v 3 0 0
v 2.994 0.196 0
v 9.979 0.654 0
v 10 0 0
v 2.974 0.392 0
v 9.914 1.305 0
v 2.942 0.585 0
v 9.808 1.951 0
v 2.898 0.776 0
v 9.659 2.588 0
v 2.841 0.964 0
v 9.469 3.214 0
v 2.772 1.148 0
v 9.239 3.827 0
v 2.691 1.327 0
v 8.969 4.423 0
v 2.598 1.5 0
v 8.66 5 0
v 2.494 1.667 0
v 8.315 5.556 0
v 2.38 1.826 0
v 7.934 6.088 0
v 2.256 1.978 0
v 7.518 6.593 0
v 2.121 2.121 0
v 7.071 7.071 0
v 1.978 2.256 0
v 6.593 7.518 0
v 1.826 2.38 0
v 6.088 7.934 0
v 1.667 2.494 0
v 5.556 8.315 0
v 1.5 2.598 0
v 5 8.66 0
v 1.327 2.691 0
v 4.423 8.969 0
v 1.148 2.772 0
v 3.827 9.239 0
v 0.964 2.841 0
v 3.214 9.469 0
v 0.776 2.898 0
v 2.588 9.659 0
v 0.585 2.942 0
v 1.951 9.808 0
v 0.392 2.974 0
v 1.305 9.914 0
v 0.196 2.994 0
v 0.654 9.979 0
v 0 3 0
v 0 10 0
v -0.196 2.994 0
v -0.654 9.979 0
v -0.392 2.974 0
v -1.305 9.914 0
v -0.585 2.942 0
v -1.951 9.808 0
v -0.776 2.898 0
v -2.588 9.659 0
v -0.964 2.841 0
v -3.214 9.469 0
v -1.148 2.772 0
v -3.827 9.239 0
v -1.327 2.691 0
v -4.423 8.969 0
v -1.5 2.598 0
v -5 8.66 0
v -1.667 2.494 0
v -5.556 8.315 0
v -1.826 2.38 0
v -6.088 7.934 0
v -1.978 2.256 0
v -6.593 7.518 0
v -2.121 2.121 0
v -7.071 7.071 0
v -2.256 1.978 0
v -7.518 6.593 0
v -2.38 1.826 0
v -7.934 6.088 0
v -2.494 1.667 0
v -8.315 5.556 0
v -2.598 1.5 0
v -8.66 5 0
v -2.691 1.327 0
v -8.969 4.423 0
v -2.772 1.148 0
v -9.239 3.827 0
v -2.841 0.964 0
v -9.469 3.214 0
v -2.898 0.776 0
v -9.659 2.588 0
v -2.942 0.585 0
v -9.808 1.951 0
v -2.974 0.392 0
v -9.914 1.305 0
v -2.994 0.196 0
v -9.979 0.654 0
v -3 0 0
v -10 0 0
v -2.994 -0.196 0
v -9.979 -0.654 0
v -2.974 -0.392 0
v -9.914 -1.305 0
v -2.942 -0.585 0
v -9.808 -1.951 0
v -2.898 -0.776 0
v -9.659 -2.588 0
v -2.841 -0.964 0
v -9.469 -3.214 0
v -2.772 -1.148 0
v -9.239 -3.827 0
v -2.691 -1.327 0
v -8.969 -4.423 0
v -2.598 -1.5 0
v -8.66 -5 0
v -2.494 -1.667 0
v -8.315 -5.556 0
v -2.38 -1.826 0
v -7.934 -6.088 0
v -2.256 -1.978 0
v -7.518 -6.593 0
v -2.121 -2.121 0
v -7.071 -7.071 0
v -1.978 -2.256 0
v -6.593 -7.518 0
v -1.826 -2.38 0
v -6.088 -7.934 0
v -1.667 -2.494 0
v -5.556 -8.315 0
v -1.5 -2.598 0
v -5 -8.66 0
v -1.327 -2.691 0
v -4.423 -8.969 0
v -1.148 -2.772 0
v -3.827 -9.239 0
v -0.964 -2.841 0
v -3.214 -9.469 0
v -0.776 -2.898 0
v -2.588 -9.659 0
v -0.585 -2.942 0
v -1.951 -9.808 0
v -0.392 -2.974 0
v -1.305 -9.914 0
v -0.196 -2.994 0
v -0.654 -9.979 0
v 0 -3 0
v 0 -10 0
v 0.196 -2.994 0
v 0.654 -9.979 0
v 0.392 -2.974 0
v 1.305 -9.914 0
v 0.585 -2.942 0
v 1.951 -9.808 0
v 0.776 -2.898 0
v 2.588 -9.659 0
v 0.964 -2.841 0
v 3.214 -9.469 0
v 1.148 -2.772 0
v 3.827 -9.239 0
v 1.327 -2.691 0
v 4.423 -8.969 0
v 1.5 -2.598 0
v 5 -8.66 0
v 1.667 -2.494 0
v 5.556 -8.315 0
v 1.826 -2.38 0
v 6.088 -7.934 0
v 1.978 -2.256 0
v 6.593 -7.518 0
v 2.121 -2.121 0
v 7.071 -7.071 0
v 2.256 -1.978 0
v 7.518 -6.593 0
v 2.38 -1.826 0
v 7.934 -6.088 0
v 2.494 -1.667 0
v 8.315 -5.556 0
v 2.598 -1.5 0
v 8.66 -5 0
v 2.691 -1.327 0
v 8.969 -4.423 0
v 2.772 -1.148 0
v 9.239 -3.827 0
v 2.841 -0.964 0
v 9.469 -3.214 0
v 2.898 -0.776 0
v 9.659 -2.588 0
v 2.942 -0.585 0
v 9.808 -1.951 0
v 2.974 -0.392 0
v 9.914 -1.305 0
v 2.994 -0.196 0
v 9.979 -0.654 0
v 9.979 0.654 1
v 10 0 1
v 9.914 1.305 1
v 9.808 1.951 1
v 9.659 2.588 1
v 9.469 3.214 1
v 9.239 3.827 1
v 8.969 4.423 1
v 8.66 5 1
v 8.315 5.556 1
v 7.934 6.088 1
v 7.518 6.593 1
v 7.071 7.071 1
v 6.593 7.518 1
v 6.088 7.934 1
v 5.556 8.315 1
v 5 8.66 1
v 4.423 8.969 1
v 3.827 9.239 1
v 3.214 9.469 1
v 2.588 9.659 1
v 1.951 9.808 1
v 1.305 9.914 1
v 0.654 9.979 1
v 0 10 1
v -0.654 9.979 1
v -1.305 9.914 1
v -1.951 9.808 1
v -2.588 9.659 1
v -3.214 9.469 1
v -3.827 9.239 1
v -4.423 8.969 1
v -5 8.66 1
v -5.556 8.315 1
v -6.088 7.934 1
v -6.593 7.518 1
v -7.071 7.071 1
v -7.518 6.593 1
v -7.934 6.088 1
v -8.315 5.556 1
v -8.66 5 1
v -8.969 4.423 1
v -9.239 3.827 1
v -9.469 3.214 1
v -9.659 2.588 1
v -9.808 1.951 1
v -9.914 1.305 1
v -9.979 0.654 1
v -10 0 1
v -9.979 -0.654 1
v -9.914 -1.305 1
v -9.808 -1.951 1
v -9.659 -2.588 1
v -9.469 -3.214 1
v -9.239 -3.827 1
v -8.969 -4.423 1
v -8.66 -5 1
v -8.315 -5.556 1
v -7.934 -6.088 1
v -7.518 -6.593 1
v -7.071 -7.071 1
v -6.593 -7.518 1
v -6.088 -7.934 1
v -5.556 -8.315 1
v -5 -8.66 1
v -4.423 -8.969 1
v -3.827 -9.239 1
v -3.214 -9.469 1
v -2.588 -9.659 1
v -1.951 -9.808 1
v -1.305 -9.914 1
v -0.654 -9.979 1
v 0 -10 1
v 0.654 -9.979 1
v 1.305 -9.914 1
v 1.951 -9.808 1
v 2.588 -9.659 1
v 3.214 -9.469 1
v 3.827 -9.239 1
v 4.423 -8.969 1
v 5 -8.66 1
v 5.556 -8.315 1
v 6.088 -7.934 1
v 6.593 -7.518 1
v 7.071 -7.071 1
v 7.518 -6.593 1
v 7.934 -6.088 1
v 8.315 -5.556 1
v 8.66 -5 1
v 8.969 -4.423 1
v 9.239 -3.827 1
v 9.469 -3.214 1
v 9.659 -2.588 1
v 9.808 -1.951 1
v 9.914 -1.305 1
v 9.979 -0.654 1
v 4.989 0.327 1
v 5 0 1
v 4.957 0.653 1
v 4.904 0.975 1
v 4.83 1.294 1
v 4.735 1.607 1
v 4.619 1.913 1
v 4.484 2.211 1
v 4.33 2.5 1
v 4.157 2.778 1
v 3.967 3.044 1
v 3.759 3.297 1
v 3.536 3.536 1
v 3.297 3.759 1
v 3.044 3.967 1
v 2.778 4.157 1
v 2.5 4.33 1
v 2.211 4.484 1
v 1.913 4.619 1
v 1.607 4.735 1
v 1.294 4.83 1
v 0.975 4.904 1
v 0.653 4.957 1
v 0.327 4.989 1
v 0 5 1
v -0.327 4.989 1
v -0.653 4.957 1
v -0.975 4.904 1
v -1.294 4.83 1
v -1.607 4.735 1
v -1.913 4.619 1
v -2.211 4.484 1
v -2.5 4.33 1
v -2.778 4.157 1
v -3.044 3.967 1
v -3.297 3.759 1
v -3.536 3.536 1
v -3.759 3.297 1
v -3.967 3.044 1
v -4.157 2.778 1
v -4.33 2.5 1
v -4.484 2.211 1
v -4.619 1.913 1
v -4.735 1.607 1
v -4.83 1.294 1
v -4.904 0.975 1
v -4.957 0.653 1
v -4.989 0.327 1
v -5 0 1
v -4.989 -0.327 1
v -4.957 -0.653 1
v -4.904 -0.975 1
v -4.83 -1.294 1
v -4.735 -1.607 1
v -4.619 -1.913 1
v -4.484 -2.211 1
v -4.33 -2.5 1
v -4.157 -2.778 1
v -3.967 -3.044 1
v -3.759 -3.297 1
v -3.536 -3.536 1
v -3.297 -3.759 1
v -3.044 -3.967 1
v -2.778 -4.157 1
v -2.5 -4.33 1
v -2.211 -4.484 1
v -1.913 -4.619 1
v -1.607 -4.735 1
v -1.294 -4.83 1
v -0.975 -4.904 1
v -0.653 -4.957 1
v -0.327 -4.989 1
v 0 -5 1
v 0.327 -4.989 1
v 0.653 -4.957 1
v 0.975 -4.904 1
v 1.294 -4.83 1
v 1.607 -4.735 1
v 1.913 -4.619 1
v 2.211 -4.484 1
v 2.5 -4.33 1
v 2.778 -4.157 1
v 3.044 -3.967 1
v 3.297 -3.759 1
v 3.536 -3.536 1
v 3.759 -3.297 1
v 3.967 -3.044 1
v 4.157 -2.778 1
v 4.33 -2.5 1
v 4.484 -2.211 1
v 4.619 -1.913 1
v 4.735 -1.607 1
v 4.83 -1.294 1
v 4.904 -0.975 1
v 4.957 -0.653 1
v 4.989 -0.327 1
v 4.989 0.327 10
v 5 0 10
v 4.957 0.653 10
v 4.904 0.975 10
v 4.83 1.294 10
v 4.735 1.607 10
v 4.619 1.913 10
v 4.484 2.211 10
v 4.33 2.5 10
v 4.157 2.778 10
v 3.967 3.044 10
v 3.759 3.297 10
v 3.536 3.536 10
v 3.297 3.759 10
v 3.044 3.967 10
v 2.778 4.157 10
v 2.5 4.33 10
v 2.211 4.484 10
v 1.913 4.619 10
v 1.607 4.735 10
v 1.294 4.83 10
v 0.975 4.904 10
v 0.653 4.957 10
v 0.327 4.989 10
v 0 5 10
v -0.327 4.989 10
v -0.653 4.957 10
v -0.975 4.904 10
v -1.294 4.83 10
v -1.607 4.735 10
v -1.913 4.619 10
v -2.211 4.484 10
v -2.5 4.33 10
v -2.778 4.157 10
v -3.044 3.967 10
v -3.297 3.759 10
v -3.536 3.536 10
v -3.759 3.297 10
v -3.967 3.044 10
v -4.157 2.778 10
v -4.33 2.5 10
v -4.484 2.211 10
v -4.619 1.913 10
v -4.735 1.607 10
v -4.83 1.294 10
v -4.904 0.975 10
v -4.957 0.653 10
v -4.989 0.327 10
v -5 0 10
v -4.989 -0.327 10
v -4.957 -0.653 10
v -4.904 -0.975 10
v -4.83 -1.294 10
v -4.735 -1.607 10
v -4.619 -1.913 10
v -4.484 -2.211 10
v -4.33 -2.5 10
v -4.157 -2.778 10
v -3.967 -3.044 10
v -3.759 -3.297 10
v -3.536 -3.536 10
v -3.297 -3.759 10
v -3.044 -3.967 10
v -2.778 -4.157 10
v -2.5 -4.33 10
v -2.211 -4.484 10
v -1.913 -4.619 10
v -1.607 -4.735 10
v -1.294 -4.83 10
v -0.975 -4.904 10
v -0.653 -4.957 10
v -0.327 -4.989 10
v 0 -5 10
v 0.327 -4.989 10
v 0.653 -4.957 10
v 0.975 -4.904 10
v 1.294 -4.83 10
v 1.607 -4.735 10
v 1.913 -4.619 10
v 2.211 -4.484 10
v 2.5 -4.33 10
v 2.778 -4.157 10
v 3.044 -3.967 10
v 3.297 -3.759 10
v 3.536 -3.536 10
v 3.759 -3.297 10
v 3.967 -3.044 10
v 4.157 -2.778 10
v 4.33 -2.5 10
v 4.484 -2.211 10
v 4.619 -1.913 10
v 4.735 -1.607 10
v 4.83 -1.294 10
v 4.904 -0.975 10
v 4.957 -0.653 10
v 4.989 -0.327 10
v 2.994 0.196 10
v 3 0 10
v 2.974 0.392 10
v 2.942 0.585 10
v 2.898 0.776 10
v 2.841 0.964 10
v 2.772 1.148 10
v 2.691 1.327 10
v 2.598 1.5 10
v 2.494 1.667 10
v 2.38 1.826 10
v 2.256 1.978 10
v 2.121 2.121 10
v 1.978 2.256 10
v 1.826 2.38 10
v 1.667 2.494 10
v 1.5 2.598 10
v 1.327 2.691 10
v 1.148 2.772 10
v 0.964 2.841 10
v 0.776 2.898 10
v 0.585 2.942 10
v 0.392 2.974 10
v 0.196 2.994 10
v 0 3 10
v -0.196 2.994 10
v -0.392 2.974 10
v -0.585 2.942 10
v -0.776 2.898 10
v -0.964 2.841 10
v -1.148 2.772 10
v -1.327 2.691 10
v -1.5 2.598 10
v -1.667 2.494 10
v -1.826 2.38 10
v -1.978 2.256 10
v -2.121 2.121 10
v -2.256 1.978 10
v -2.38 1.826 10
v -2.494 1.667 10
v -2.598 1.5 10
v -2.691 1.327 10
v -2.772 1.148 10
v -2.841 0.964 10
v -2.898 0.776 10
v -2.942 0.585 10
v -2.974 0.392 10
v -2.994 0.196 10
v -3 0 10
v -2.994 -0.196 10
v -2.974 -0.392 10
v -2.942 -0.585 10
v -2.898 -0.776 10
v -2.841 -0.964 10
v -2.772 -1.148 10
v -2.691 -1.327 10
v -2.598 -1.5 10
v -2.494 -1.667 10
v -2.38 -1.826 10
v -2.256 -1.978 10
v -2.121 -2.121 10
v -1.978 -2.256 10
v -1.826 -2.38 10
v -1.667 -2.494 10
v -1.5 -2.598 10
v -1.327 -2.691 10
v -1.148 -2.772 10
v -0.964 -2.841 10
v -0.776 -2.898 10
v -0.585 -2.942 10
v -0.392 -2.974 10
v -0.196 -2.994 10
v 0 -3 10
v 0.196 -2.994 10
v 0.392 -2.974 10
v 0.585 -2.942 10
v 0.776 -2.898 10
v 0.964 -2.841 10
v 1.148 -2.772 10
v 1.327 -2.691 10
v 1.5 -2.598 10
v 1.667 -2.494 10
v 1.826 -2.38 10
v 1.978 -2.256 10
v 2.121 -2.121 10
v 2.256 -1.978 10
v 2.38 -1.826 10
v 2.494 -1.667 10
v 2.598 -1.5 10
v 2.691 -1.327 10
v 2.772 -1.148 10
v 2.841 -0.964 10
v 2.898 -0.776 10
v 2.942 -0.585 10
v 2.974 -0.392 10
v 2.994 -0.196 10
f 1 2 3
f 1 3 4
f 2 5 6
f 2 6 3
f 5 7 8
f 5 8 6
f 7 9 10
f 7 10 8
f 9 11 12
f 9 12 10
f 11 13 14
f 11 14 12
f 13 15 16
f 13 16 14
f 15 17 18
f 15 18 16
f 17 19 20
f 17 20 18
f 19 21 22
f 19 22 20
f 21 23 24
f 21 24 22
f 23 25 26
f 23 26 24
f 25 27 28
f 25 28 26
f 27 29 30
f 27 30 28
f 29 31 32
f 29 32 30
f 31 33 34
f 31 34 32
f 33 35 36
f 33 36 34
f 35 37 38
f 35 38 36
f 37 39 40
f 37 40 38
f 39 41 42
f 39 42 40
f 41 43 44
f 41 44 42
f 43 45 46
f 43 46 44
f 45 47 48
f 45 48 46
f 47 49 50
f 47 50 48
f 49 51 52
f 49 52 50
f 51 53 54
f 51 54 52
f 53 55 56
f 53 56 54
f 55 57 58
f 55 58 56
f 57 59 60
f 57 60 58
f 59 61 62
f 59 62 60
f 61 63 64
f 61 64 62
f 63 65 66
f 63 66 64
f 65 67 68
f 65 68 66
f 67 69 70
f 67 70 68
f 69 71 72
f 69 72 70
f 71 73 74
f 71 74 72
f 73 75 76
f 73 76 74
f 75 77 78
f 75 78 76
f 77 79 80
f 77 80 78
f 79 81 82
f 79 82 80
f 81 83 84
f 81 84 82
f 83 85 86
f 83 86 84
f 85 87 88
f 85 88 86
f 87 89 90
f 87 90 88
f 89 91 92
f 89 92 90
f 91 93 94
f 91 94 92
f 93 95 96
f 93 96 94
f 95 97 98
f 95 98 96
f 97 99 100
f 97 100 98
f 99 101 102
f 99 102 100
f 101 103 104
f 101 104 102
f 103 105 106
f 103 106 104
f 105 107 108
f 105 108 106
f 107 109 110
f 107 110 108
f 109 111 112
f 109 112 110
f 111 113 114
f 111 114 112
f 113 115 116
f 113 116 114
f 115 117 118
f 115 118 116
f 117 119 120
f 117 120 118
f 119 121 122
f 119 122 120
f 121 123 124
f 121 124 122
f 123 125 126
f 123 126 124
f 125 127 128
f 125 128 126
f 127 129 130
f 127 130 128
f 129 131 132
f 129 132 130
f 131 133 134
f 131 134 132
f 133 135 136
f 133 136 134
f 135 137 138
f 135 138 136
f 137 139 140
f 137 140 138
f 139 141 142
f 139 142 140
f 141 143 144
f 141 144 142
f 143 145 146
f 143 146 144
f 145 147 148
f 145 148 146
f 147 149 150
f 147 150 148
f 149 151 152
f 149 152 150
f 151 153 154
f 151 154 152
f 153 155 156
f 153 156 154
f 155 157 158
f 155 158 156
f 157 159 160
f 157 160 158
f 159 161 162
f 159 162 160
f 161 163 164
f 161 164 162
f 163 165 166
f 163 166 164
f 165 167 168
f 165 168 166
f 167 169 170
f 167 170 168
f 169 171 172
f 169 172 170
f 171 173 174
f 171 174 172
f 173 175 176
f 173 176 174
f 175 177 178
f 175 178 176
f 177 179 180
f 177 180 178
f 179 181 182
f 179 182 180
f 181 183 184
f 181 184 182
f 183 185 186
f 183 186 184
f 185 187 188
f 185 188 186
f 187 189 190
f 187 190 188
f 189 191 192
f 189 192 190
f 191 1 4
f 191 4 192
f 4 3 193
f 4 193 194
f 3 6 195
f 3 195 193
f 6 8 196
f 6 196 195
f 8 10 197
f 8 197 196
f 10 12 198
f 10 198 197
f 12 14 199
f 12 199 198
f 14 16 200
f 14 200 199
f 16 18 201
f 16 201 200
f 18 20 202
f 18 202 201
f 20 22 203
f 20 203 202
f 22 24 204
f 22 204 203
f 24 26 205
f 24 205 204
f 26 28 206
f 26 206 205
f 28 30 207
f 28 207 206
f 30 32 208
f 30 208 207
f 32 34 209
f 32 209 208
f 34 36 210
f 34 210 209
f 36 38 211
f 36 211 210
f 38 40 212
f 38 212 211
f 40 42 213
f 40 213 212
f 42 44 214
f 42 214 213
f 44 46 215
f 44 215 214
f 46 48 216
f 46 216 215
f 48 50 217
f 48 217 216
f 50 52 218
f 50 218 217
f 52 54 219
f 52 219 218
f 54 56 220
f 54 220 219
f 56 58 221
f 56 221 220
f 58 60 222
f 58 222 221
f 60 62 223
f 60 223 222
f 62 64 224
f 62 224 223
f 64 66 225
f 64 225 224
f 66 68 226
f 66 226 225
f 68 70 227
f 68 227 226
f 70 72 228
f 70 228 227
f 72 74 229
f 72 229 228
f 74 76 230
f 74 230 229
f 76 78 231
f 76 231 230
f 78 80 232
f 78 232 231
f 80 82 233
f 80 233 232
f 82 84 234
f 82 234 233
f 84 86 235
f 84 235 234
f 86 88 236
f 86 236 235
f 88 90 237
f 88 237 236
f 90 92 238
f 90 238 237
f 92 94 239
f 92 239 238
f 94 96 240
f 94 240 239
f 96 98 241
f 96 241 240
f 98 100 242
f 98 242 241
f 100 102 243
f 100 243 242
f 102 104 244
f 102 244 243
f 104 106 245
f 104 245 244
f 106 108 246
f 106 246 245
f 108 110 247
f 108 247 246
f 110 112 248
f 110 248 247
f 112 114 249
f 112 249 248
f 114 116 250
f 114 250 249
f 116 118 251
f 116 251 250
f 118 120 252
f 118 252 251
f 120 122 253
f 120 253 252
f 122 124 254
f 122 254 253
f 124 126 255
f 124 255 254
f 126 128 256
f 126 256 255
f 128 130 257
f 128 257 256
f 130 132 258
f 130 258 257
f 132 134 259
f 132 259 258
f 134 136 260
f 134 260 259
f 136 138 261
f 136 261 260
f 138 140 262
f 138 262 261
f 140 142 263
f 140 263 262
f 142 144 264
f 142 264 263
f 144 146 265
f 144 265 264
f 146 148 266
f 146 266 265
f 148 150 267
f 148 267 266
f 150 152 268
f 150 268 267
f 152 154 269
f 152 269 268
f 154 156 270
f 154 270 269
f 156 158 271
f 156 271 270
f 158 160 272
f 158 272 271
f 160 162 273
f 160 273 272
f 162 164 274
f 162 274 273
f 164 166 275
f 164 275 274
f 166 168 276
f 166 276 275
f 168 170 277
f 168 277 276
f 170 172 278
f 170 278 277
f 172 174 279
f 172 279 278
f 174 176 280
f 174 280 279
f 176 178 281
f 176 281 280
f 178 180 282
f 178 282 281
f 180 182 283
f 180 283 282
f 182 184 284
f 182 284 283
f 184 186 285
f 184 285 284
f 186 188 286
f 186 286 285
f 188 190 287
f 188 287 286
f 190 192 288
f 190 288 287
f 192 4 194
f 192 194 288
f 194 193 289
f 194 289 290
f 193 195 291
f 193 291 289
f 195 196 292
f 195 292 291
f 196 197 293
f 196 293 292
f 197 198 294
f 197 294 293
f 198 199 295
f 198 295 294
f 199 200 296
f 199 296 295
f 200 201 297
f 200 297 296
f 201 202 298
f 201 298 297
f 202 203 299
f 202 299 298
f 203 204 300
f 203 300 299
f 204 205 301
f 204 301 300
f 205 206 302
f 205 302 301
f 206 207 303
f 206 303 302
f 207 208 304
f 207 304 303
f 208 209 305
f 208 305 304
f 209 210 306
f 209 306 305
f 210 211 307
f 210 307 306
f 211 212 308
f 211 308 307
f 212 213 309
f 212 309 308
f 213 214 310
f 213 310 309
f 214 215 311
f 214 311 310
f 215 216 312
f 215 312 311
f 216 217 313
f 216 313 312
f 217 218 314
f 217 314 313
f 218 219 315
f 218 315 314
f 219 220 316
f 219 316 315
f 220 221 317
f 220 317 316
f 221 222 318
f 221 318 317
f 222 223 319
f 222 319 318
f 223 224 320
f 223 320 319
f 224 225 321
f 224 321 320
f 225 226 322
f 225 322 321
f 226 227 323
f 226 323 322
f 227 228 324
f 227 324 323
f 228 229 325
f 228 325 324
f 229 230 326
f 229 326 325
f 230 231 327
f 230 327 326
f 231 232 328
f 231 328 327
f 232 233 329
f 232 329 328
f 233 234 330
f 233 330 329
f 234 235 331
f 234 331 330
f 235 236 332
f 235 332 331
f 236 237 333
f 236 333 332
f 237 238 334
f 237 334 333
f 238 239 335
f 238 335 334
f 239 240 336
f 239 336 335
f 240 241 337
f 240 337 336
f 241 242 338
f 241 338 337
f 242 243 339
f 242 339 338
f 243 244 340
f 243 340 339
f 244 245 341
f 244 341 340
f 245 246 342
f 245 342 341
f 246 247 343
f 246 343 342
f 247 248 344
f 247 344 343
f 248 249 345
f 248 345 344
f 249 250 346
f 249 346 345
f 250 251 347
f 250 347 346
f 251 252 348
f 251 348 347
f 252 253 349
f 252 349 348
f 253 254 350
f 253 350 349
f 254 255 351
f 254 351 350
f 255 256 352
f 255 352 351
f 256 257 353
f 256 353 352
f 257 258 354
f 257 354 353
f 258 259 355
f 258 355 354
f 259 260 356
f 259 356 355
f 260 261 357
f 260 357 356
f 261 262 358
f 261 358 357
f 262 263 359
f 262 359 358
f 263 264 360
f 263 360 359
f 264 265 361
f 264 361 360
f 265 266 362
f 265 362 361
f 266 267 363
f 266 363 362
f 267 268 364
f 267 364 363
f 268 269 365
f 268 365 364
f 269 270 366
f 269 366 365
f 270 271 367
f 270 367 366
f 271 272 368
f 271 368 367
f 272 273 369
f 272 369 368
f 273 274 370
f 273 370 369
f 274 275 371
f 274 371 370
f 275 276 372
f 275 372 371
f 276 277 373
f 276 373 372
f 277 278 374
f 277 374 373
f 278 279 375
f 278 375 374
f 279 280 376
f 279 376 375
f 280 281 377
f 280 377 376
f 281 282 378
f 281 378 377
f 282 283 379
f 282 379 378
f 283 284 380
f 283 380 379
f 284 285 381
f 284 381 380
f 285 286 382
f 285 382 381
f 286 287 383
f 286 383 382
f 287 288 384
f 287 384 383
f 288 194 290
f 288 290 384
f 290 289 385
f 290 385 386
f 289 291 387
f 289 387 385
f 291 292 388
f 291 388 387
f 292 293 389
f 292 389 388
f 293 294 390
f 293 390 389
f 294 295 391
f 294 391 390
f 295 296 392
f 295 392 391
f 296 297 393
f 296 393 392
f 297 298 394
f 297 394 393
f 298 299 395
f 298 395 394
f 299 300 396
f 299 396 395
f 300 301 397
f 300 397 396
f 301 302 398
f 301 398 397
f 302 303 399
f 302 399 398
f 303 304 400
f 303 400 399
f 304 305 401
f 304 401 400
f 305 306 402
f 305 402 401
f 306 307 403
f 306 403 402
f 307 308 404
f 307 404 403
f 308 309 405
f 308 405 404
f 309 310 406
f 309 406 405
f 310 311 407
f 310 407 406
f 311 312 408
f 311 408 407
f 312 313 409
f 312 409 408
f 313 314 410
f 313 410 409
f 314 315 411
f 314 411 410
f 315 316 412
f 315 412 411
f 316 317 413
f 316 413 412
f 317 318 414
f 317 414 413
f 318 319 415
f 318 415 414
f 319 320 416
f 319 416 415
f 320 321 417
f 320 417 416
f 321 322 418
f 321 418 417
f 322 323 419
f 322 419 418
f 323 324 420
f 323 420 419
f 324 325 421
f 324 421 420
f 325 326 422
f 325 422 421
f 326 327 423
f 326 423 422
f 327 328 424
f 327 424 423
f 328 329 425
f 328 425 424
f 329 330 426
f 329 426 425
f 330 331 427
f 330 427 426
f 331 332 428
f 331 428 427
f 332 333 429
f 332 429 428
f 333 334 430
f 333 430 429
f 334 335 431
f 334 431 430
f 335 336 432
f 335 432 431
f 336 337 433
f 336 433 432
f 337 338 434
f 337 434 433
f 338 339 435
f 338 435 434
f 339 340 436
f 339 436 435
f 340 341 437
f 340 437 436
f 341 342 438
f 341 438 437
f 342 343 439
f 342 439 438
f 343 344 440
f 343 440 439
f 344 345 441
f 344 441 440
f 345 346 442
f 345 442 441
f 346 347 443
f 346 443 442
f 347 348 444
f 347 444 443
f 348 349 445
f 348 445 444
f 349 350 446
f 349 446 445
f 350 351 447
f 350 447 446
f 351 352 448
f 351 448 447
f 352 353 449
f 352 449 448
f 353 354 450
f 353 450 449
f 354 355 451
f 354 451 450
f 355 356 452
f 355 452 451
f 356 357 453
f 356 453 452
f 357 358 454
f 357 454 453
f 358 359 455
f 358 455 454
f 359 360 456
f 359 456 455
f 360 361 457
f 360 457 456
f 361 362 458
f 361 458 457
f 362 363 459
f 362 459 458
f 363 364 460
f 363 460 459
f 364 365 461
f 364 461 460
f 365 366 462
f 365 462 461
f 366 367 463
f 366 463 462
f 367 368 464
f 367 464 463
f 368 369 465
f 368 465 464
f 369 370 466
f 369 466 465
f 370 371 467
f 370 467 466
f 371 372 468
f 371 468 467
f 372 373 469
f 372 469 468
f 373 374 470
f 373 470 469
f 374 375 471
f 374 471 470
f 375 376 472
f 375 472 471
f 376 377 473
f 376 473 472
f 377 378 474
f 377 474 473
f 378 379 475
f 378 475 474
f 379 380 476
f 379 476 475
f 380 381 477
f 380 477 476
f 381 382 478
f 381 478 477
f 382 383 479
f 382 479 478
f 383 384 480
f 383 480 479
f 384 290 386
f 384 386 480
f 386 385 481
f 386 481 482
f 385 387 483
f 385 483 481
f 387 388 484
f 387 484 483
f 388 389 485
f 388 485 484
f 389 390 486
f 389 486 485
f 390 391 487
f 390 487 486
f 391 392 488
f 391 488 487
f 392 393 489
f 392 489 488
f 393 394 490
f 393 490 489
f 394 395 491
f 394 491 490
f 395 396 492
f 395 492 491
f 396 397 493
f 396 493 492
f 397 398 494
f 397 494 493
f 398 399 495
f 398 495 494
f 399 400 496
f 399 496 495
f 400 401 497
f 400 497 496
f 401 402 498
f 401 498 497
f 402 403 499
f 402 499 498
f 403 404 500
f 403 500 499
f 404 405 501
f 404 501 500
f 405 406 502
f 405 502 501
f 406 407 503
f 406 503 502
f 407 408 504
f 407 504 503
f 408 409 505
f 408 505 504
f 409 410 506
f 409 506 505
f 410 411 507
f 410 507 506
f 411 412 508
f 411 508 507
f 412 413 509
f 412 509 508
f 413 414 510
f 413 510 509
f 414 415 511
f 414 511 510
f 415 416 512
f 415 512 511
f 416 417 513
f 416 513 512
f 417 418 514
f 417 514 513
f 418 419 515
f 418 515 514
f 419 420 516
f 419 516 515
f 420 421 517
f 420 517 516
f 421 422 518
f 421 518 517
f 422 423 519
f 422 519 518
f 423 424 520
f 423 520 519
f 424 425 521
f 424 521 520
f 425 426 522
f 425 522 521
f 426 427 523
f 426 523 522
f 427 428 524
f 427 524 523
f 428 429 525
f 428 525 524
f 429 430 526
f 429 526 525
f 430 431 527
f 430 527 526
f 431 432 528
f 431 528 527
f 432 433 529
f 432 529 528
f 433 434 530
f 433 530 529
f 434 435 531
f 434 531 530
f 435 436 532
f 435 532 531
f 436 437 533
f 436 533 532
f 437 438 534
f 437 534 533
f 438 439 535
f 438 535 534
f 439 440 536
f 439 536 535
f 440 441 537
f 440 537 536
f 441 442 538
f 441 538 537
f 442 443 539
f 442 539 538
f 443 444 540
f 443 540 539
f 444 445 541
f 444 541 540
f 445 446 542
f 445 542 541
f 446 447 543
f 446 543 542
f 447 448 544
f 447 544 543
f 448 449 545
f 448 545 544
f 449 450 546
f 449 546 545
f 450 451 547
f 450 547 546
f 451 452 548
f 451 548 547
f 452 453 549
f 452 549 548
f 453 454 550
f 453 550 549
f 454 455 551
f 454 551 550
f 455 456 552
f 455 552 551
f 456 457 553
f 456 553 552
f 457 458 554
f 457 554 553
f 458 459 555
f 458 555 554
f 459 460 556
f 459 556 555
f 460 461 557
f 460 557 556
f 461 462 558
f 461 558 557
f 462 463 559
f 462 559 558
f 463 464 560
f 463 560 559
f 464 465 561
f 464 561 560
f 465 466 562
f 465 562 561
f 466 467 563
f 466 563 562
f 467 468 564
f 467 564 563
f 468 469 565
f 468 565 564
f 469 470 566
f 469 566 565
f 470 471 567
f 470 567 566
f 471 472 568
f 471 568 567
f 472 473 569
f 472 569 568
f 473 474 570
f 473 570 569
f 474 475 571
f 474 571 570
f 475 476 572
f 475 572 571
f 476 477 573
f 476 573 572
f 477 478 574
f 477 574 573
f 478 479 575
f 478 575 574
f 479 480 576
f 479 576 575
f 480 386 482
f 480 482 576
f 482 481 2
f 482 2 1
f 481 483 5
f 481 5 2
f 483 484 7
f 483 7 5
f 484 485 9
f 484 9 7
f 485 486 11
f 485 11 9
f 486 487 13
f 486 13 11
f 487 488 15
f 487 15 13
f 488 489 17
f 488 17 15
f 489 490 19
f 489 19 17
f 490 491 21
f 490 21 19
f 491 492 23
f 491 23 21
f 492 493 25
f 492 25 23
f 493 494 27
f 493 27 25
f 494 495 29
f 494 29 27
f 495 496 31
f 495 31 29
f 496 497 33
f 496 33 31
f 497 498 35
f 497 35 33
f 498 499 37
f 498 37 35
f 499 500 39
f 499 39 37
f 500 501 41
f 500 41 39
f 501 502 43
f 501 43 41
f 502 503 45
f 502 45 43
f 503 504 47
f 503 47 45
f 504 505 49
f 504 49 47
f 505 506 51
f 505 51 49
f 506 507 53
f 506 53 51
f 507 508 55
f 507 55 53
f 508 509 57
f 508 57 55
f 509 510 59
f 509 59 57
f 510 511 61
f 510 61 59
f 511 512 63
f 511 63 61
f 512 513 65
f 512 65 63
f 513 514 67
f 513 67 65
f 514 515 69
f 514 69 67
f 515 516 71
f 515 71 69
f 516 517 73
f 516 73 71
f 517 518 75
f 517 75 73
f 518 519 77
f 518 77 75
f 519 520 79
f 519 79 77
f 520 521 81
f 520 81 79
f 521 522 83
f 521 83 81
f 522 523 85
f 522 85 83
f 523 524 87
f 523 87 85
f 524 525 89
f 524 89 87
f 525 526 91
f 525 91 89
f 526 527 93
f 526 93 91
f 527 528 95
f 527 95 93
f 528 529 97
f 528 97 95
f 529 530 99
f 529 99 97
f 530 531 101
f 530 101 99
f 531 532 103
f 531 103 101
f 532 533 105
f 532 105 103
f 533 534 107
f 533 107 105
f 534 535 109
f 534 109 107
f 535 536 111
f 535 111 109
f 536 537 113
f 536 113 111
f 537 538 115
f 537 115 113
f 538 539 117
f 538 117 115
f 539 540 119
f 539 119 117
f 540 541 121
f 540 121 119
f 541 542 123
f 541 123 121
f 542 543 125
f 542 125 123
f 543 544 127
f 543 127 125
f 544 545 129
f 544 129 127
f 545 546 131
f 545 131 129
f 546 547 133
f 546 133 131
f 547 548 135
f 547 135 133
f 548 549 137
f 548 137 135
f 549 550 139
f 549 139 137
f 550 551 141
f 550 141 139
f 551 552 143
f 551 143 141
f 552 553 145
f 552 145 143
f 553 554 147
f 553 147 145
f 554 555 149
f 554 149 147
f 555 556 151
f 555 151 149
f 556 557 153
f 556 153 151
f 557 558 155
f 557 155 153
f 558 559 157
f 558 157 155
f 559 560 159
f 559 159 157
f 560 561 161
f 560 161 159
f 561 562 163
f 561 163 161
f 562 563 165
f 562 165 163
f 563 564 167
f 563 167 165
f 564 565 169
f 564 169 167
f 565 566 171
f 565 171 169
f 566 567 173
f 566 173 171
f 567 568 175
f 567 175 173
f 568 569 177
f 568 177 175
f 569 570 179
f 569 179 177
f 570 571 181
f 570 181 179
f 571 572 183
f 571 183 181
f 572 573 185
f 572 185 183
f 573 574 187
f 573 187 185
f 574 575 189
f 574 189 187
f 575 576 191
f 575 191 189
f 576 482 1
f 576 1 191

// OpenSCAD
// Original MechIntel educational model. CC0-1.0. Units: mm.
// Not a standardized or load-rated component.
$fn=96;
// Section points: [radius, height], mm. Edit to change the profile.
section=[[3, 0], [10, 0], [10, 1], [5, 1], [5, 10], [3, 10]];
rotate_extrude($fn=96) polygon(points=section);
